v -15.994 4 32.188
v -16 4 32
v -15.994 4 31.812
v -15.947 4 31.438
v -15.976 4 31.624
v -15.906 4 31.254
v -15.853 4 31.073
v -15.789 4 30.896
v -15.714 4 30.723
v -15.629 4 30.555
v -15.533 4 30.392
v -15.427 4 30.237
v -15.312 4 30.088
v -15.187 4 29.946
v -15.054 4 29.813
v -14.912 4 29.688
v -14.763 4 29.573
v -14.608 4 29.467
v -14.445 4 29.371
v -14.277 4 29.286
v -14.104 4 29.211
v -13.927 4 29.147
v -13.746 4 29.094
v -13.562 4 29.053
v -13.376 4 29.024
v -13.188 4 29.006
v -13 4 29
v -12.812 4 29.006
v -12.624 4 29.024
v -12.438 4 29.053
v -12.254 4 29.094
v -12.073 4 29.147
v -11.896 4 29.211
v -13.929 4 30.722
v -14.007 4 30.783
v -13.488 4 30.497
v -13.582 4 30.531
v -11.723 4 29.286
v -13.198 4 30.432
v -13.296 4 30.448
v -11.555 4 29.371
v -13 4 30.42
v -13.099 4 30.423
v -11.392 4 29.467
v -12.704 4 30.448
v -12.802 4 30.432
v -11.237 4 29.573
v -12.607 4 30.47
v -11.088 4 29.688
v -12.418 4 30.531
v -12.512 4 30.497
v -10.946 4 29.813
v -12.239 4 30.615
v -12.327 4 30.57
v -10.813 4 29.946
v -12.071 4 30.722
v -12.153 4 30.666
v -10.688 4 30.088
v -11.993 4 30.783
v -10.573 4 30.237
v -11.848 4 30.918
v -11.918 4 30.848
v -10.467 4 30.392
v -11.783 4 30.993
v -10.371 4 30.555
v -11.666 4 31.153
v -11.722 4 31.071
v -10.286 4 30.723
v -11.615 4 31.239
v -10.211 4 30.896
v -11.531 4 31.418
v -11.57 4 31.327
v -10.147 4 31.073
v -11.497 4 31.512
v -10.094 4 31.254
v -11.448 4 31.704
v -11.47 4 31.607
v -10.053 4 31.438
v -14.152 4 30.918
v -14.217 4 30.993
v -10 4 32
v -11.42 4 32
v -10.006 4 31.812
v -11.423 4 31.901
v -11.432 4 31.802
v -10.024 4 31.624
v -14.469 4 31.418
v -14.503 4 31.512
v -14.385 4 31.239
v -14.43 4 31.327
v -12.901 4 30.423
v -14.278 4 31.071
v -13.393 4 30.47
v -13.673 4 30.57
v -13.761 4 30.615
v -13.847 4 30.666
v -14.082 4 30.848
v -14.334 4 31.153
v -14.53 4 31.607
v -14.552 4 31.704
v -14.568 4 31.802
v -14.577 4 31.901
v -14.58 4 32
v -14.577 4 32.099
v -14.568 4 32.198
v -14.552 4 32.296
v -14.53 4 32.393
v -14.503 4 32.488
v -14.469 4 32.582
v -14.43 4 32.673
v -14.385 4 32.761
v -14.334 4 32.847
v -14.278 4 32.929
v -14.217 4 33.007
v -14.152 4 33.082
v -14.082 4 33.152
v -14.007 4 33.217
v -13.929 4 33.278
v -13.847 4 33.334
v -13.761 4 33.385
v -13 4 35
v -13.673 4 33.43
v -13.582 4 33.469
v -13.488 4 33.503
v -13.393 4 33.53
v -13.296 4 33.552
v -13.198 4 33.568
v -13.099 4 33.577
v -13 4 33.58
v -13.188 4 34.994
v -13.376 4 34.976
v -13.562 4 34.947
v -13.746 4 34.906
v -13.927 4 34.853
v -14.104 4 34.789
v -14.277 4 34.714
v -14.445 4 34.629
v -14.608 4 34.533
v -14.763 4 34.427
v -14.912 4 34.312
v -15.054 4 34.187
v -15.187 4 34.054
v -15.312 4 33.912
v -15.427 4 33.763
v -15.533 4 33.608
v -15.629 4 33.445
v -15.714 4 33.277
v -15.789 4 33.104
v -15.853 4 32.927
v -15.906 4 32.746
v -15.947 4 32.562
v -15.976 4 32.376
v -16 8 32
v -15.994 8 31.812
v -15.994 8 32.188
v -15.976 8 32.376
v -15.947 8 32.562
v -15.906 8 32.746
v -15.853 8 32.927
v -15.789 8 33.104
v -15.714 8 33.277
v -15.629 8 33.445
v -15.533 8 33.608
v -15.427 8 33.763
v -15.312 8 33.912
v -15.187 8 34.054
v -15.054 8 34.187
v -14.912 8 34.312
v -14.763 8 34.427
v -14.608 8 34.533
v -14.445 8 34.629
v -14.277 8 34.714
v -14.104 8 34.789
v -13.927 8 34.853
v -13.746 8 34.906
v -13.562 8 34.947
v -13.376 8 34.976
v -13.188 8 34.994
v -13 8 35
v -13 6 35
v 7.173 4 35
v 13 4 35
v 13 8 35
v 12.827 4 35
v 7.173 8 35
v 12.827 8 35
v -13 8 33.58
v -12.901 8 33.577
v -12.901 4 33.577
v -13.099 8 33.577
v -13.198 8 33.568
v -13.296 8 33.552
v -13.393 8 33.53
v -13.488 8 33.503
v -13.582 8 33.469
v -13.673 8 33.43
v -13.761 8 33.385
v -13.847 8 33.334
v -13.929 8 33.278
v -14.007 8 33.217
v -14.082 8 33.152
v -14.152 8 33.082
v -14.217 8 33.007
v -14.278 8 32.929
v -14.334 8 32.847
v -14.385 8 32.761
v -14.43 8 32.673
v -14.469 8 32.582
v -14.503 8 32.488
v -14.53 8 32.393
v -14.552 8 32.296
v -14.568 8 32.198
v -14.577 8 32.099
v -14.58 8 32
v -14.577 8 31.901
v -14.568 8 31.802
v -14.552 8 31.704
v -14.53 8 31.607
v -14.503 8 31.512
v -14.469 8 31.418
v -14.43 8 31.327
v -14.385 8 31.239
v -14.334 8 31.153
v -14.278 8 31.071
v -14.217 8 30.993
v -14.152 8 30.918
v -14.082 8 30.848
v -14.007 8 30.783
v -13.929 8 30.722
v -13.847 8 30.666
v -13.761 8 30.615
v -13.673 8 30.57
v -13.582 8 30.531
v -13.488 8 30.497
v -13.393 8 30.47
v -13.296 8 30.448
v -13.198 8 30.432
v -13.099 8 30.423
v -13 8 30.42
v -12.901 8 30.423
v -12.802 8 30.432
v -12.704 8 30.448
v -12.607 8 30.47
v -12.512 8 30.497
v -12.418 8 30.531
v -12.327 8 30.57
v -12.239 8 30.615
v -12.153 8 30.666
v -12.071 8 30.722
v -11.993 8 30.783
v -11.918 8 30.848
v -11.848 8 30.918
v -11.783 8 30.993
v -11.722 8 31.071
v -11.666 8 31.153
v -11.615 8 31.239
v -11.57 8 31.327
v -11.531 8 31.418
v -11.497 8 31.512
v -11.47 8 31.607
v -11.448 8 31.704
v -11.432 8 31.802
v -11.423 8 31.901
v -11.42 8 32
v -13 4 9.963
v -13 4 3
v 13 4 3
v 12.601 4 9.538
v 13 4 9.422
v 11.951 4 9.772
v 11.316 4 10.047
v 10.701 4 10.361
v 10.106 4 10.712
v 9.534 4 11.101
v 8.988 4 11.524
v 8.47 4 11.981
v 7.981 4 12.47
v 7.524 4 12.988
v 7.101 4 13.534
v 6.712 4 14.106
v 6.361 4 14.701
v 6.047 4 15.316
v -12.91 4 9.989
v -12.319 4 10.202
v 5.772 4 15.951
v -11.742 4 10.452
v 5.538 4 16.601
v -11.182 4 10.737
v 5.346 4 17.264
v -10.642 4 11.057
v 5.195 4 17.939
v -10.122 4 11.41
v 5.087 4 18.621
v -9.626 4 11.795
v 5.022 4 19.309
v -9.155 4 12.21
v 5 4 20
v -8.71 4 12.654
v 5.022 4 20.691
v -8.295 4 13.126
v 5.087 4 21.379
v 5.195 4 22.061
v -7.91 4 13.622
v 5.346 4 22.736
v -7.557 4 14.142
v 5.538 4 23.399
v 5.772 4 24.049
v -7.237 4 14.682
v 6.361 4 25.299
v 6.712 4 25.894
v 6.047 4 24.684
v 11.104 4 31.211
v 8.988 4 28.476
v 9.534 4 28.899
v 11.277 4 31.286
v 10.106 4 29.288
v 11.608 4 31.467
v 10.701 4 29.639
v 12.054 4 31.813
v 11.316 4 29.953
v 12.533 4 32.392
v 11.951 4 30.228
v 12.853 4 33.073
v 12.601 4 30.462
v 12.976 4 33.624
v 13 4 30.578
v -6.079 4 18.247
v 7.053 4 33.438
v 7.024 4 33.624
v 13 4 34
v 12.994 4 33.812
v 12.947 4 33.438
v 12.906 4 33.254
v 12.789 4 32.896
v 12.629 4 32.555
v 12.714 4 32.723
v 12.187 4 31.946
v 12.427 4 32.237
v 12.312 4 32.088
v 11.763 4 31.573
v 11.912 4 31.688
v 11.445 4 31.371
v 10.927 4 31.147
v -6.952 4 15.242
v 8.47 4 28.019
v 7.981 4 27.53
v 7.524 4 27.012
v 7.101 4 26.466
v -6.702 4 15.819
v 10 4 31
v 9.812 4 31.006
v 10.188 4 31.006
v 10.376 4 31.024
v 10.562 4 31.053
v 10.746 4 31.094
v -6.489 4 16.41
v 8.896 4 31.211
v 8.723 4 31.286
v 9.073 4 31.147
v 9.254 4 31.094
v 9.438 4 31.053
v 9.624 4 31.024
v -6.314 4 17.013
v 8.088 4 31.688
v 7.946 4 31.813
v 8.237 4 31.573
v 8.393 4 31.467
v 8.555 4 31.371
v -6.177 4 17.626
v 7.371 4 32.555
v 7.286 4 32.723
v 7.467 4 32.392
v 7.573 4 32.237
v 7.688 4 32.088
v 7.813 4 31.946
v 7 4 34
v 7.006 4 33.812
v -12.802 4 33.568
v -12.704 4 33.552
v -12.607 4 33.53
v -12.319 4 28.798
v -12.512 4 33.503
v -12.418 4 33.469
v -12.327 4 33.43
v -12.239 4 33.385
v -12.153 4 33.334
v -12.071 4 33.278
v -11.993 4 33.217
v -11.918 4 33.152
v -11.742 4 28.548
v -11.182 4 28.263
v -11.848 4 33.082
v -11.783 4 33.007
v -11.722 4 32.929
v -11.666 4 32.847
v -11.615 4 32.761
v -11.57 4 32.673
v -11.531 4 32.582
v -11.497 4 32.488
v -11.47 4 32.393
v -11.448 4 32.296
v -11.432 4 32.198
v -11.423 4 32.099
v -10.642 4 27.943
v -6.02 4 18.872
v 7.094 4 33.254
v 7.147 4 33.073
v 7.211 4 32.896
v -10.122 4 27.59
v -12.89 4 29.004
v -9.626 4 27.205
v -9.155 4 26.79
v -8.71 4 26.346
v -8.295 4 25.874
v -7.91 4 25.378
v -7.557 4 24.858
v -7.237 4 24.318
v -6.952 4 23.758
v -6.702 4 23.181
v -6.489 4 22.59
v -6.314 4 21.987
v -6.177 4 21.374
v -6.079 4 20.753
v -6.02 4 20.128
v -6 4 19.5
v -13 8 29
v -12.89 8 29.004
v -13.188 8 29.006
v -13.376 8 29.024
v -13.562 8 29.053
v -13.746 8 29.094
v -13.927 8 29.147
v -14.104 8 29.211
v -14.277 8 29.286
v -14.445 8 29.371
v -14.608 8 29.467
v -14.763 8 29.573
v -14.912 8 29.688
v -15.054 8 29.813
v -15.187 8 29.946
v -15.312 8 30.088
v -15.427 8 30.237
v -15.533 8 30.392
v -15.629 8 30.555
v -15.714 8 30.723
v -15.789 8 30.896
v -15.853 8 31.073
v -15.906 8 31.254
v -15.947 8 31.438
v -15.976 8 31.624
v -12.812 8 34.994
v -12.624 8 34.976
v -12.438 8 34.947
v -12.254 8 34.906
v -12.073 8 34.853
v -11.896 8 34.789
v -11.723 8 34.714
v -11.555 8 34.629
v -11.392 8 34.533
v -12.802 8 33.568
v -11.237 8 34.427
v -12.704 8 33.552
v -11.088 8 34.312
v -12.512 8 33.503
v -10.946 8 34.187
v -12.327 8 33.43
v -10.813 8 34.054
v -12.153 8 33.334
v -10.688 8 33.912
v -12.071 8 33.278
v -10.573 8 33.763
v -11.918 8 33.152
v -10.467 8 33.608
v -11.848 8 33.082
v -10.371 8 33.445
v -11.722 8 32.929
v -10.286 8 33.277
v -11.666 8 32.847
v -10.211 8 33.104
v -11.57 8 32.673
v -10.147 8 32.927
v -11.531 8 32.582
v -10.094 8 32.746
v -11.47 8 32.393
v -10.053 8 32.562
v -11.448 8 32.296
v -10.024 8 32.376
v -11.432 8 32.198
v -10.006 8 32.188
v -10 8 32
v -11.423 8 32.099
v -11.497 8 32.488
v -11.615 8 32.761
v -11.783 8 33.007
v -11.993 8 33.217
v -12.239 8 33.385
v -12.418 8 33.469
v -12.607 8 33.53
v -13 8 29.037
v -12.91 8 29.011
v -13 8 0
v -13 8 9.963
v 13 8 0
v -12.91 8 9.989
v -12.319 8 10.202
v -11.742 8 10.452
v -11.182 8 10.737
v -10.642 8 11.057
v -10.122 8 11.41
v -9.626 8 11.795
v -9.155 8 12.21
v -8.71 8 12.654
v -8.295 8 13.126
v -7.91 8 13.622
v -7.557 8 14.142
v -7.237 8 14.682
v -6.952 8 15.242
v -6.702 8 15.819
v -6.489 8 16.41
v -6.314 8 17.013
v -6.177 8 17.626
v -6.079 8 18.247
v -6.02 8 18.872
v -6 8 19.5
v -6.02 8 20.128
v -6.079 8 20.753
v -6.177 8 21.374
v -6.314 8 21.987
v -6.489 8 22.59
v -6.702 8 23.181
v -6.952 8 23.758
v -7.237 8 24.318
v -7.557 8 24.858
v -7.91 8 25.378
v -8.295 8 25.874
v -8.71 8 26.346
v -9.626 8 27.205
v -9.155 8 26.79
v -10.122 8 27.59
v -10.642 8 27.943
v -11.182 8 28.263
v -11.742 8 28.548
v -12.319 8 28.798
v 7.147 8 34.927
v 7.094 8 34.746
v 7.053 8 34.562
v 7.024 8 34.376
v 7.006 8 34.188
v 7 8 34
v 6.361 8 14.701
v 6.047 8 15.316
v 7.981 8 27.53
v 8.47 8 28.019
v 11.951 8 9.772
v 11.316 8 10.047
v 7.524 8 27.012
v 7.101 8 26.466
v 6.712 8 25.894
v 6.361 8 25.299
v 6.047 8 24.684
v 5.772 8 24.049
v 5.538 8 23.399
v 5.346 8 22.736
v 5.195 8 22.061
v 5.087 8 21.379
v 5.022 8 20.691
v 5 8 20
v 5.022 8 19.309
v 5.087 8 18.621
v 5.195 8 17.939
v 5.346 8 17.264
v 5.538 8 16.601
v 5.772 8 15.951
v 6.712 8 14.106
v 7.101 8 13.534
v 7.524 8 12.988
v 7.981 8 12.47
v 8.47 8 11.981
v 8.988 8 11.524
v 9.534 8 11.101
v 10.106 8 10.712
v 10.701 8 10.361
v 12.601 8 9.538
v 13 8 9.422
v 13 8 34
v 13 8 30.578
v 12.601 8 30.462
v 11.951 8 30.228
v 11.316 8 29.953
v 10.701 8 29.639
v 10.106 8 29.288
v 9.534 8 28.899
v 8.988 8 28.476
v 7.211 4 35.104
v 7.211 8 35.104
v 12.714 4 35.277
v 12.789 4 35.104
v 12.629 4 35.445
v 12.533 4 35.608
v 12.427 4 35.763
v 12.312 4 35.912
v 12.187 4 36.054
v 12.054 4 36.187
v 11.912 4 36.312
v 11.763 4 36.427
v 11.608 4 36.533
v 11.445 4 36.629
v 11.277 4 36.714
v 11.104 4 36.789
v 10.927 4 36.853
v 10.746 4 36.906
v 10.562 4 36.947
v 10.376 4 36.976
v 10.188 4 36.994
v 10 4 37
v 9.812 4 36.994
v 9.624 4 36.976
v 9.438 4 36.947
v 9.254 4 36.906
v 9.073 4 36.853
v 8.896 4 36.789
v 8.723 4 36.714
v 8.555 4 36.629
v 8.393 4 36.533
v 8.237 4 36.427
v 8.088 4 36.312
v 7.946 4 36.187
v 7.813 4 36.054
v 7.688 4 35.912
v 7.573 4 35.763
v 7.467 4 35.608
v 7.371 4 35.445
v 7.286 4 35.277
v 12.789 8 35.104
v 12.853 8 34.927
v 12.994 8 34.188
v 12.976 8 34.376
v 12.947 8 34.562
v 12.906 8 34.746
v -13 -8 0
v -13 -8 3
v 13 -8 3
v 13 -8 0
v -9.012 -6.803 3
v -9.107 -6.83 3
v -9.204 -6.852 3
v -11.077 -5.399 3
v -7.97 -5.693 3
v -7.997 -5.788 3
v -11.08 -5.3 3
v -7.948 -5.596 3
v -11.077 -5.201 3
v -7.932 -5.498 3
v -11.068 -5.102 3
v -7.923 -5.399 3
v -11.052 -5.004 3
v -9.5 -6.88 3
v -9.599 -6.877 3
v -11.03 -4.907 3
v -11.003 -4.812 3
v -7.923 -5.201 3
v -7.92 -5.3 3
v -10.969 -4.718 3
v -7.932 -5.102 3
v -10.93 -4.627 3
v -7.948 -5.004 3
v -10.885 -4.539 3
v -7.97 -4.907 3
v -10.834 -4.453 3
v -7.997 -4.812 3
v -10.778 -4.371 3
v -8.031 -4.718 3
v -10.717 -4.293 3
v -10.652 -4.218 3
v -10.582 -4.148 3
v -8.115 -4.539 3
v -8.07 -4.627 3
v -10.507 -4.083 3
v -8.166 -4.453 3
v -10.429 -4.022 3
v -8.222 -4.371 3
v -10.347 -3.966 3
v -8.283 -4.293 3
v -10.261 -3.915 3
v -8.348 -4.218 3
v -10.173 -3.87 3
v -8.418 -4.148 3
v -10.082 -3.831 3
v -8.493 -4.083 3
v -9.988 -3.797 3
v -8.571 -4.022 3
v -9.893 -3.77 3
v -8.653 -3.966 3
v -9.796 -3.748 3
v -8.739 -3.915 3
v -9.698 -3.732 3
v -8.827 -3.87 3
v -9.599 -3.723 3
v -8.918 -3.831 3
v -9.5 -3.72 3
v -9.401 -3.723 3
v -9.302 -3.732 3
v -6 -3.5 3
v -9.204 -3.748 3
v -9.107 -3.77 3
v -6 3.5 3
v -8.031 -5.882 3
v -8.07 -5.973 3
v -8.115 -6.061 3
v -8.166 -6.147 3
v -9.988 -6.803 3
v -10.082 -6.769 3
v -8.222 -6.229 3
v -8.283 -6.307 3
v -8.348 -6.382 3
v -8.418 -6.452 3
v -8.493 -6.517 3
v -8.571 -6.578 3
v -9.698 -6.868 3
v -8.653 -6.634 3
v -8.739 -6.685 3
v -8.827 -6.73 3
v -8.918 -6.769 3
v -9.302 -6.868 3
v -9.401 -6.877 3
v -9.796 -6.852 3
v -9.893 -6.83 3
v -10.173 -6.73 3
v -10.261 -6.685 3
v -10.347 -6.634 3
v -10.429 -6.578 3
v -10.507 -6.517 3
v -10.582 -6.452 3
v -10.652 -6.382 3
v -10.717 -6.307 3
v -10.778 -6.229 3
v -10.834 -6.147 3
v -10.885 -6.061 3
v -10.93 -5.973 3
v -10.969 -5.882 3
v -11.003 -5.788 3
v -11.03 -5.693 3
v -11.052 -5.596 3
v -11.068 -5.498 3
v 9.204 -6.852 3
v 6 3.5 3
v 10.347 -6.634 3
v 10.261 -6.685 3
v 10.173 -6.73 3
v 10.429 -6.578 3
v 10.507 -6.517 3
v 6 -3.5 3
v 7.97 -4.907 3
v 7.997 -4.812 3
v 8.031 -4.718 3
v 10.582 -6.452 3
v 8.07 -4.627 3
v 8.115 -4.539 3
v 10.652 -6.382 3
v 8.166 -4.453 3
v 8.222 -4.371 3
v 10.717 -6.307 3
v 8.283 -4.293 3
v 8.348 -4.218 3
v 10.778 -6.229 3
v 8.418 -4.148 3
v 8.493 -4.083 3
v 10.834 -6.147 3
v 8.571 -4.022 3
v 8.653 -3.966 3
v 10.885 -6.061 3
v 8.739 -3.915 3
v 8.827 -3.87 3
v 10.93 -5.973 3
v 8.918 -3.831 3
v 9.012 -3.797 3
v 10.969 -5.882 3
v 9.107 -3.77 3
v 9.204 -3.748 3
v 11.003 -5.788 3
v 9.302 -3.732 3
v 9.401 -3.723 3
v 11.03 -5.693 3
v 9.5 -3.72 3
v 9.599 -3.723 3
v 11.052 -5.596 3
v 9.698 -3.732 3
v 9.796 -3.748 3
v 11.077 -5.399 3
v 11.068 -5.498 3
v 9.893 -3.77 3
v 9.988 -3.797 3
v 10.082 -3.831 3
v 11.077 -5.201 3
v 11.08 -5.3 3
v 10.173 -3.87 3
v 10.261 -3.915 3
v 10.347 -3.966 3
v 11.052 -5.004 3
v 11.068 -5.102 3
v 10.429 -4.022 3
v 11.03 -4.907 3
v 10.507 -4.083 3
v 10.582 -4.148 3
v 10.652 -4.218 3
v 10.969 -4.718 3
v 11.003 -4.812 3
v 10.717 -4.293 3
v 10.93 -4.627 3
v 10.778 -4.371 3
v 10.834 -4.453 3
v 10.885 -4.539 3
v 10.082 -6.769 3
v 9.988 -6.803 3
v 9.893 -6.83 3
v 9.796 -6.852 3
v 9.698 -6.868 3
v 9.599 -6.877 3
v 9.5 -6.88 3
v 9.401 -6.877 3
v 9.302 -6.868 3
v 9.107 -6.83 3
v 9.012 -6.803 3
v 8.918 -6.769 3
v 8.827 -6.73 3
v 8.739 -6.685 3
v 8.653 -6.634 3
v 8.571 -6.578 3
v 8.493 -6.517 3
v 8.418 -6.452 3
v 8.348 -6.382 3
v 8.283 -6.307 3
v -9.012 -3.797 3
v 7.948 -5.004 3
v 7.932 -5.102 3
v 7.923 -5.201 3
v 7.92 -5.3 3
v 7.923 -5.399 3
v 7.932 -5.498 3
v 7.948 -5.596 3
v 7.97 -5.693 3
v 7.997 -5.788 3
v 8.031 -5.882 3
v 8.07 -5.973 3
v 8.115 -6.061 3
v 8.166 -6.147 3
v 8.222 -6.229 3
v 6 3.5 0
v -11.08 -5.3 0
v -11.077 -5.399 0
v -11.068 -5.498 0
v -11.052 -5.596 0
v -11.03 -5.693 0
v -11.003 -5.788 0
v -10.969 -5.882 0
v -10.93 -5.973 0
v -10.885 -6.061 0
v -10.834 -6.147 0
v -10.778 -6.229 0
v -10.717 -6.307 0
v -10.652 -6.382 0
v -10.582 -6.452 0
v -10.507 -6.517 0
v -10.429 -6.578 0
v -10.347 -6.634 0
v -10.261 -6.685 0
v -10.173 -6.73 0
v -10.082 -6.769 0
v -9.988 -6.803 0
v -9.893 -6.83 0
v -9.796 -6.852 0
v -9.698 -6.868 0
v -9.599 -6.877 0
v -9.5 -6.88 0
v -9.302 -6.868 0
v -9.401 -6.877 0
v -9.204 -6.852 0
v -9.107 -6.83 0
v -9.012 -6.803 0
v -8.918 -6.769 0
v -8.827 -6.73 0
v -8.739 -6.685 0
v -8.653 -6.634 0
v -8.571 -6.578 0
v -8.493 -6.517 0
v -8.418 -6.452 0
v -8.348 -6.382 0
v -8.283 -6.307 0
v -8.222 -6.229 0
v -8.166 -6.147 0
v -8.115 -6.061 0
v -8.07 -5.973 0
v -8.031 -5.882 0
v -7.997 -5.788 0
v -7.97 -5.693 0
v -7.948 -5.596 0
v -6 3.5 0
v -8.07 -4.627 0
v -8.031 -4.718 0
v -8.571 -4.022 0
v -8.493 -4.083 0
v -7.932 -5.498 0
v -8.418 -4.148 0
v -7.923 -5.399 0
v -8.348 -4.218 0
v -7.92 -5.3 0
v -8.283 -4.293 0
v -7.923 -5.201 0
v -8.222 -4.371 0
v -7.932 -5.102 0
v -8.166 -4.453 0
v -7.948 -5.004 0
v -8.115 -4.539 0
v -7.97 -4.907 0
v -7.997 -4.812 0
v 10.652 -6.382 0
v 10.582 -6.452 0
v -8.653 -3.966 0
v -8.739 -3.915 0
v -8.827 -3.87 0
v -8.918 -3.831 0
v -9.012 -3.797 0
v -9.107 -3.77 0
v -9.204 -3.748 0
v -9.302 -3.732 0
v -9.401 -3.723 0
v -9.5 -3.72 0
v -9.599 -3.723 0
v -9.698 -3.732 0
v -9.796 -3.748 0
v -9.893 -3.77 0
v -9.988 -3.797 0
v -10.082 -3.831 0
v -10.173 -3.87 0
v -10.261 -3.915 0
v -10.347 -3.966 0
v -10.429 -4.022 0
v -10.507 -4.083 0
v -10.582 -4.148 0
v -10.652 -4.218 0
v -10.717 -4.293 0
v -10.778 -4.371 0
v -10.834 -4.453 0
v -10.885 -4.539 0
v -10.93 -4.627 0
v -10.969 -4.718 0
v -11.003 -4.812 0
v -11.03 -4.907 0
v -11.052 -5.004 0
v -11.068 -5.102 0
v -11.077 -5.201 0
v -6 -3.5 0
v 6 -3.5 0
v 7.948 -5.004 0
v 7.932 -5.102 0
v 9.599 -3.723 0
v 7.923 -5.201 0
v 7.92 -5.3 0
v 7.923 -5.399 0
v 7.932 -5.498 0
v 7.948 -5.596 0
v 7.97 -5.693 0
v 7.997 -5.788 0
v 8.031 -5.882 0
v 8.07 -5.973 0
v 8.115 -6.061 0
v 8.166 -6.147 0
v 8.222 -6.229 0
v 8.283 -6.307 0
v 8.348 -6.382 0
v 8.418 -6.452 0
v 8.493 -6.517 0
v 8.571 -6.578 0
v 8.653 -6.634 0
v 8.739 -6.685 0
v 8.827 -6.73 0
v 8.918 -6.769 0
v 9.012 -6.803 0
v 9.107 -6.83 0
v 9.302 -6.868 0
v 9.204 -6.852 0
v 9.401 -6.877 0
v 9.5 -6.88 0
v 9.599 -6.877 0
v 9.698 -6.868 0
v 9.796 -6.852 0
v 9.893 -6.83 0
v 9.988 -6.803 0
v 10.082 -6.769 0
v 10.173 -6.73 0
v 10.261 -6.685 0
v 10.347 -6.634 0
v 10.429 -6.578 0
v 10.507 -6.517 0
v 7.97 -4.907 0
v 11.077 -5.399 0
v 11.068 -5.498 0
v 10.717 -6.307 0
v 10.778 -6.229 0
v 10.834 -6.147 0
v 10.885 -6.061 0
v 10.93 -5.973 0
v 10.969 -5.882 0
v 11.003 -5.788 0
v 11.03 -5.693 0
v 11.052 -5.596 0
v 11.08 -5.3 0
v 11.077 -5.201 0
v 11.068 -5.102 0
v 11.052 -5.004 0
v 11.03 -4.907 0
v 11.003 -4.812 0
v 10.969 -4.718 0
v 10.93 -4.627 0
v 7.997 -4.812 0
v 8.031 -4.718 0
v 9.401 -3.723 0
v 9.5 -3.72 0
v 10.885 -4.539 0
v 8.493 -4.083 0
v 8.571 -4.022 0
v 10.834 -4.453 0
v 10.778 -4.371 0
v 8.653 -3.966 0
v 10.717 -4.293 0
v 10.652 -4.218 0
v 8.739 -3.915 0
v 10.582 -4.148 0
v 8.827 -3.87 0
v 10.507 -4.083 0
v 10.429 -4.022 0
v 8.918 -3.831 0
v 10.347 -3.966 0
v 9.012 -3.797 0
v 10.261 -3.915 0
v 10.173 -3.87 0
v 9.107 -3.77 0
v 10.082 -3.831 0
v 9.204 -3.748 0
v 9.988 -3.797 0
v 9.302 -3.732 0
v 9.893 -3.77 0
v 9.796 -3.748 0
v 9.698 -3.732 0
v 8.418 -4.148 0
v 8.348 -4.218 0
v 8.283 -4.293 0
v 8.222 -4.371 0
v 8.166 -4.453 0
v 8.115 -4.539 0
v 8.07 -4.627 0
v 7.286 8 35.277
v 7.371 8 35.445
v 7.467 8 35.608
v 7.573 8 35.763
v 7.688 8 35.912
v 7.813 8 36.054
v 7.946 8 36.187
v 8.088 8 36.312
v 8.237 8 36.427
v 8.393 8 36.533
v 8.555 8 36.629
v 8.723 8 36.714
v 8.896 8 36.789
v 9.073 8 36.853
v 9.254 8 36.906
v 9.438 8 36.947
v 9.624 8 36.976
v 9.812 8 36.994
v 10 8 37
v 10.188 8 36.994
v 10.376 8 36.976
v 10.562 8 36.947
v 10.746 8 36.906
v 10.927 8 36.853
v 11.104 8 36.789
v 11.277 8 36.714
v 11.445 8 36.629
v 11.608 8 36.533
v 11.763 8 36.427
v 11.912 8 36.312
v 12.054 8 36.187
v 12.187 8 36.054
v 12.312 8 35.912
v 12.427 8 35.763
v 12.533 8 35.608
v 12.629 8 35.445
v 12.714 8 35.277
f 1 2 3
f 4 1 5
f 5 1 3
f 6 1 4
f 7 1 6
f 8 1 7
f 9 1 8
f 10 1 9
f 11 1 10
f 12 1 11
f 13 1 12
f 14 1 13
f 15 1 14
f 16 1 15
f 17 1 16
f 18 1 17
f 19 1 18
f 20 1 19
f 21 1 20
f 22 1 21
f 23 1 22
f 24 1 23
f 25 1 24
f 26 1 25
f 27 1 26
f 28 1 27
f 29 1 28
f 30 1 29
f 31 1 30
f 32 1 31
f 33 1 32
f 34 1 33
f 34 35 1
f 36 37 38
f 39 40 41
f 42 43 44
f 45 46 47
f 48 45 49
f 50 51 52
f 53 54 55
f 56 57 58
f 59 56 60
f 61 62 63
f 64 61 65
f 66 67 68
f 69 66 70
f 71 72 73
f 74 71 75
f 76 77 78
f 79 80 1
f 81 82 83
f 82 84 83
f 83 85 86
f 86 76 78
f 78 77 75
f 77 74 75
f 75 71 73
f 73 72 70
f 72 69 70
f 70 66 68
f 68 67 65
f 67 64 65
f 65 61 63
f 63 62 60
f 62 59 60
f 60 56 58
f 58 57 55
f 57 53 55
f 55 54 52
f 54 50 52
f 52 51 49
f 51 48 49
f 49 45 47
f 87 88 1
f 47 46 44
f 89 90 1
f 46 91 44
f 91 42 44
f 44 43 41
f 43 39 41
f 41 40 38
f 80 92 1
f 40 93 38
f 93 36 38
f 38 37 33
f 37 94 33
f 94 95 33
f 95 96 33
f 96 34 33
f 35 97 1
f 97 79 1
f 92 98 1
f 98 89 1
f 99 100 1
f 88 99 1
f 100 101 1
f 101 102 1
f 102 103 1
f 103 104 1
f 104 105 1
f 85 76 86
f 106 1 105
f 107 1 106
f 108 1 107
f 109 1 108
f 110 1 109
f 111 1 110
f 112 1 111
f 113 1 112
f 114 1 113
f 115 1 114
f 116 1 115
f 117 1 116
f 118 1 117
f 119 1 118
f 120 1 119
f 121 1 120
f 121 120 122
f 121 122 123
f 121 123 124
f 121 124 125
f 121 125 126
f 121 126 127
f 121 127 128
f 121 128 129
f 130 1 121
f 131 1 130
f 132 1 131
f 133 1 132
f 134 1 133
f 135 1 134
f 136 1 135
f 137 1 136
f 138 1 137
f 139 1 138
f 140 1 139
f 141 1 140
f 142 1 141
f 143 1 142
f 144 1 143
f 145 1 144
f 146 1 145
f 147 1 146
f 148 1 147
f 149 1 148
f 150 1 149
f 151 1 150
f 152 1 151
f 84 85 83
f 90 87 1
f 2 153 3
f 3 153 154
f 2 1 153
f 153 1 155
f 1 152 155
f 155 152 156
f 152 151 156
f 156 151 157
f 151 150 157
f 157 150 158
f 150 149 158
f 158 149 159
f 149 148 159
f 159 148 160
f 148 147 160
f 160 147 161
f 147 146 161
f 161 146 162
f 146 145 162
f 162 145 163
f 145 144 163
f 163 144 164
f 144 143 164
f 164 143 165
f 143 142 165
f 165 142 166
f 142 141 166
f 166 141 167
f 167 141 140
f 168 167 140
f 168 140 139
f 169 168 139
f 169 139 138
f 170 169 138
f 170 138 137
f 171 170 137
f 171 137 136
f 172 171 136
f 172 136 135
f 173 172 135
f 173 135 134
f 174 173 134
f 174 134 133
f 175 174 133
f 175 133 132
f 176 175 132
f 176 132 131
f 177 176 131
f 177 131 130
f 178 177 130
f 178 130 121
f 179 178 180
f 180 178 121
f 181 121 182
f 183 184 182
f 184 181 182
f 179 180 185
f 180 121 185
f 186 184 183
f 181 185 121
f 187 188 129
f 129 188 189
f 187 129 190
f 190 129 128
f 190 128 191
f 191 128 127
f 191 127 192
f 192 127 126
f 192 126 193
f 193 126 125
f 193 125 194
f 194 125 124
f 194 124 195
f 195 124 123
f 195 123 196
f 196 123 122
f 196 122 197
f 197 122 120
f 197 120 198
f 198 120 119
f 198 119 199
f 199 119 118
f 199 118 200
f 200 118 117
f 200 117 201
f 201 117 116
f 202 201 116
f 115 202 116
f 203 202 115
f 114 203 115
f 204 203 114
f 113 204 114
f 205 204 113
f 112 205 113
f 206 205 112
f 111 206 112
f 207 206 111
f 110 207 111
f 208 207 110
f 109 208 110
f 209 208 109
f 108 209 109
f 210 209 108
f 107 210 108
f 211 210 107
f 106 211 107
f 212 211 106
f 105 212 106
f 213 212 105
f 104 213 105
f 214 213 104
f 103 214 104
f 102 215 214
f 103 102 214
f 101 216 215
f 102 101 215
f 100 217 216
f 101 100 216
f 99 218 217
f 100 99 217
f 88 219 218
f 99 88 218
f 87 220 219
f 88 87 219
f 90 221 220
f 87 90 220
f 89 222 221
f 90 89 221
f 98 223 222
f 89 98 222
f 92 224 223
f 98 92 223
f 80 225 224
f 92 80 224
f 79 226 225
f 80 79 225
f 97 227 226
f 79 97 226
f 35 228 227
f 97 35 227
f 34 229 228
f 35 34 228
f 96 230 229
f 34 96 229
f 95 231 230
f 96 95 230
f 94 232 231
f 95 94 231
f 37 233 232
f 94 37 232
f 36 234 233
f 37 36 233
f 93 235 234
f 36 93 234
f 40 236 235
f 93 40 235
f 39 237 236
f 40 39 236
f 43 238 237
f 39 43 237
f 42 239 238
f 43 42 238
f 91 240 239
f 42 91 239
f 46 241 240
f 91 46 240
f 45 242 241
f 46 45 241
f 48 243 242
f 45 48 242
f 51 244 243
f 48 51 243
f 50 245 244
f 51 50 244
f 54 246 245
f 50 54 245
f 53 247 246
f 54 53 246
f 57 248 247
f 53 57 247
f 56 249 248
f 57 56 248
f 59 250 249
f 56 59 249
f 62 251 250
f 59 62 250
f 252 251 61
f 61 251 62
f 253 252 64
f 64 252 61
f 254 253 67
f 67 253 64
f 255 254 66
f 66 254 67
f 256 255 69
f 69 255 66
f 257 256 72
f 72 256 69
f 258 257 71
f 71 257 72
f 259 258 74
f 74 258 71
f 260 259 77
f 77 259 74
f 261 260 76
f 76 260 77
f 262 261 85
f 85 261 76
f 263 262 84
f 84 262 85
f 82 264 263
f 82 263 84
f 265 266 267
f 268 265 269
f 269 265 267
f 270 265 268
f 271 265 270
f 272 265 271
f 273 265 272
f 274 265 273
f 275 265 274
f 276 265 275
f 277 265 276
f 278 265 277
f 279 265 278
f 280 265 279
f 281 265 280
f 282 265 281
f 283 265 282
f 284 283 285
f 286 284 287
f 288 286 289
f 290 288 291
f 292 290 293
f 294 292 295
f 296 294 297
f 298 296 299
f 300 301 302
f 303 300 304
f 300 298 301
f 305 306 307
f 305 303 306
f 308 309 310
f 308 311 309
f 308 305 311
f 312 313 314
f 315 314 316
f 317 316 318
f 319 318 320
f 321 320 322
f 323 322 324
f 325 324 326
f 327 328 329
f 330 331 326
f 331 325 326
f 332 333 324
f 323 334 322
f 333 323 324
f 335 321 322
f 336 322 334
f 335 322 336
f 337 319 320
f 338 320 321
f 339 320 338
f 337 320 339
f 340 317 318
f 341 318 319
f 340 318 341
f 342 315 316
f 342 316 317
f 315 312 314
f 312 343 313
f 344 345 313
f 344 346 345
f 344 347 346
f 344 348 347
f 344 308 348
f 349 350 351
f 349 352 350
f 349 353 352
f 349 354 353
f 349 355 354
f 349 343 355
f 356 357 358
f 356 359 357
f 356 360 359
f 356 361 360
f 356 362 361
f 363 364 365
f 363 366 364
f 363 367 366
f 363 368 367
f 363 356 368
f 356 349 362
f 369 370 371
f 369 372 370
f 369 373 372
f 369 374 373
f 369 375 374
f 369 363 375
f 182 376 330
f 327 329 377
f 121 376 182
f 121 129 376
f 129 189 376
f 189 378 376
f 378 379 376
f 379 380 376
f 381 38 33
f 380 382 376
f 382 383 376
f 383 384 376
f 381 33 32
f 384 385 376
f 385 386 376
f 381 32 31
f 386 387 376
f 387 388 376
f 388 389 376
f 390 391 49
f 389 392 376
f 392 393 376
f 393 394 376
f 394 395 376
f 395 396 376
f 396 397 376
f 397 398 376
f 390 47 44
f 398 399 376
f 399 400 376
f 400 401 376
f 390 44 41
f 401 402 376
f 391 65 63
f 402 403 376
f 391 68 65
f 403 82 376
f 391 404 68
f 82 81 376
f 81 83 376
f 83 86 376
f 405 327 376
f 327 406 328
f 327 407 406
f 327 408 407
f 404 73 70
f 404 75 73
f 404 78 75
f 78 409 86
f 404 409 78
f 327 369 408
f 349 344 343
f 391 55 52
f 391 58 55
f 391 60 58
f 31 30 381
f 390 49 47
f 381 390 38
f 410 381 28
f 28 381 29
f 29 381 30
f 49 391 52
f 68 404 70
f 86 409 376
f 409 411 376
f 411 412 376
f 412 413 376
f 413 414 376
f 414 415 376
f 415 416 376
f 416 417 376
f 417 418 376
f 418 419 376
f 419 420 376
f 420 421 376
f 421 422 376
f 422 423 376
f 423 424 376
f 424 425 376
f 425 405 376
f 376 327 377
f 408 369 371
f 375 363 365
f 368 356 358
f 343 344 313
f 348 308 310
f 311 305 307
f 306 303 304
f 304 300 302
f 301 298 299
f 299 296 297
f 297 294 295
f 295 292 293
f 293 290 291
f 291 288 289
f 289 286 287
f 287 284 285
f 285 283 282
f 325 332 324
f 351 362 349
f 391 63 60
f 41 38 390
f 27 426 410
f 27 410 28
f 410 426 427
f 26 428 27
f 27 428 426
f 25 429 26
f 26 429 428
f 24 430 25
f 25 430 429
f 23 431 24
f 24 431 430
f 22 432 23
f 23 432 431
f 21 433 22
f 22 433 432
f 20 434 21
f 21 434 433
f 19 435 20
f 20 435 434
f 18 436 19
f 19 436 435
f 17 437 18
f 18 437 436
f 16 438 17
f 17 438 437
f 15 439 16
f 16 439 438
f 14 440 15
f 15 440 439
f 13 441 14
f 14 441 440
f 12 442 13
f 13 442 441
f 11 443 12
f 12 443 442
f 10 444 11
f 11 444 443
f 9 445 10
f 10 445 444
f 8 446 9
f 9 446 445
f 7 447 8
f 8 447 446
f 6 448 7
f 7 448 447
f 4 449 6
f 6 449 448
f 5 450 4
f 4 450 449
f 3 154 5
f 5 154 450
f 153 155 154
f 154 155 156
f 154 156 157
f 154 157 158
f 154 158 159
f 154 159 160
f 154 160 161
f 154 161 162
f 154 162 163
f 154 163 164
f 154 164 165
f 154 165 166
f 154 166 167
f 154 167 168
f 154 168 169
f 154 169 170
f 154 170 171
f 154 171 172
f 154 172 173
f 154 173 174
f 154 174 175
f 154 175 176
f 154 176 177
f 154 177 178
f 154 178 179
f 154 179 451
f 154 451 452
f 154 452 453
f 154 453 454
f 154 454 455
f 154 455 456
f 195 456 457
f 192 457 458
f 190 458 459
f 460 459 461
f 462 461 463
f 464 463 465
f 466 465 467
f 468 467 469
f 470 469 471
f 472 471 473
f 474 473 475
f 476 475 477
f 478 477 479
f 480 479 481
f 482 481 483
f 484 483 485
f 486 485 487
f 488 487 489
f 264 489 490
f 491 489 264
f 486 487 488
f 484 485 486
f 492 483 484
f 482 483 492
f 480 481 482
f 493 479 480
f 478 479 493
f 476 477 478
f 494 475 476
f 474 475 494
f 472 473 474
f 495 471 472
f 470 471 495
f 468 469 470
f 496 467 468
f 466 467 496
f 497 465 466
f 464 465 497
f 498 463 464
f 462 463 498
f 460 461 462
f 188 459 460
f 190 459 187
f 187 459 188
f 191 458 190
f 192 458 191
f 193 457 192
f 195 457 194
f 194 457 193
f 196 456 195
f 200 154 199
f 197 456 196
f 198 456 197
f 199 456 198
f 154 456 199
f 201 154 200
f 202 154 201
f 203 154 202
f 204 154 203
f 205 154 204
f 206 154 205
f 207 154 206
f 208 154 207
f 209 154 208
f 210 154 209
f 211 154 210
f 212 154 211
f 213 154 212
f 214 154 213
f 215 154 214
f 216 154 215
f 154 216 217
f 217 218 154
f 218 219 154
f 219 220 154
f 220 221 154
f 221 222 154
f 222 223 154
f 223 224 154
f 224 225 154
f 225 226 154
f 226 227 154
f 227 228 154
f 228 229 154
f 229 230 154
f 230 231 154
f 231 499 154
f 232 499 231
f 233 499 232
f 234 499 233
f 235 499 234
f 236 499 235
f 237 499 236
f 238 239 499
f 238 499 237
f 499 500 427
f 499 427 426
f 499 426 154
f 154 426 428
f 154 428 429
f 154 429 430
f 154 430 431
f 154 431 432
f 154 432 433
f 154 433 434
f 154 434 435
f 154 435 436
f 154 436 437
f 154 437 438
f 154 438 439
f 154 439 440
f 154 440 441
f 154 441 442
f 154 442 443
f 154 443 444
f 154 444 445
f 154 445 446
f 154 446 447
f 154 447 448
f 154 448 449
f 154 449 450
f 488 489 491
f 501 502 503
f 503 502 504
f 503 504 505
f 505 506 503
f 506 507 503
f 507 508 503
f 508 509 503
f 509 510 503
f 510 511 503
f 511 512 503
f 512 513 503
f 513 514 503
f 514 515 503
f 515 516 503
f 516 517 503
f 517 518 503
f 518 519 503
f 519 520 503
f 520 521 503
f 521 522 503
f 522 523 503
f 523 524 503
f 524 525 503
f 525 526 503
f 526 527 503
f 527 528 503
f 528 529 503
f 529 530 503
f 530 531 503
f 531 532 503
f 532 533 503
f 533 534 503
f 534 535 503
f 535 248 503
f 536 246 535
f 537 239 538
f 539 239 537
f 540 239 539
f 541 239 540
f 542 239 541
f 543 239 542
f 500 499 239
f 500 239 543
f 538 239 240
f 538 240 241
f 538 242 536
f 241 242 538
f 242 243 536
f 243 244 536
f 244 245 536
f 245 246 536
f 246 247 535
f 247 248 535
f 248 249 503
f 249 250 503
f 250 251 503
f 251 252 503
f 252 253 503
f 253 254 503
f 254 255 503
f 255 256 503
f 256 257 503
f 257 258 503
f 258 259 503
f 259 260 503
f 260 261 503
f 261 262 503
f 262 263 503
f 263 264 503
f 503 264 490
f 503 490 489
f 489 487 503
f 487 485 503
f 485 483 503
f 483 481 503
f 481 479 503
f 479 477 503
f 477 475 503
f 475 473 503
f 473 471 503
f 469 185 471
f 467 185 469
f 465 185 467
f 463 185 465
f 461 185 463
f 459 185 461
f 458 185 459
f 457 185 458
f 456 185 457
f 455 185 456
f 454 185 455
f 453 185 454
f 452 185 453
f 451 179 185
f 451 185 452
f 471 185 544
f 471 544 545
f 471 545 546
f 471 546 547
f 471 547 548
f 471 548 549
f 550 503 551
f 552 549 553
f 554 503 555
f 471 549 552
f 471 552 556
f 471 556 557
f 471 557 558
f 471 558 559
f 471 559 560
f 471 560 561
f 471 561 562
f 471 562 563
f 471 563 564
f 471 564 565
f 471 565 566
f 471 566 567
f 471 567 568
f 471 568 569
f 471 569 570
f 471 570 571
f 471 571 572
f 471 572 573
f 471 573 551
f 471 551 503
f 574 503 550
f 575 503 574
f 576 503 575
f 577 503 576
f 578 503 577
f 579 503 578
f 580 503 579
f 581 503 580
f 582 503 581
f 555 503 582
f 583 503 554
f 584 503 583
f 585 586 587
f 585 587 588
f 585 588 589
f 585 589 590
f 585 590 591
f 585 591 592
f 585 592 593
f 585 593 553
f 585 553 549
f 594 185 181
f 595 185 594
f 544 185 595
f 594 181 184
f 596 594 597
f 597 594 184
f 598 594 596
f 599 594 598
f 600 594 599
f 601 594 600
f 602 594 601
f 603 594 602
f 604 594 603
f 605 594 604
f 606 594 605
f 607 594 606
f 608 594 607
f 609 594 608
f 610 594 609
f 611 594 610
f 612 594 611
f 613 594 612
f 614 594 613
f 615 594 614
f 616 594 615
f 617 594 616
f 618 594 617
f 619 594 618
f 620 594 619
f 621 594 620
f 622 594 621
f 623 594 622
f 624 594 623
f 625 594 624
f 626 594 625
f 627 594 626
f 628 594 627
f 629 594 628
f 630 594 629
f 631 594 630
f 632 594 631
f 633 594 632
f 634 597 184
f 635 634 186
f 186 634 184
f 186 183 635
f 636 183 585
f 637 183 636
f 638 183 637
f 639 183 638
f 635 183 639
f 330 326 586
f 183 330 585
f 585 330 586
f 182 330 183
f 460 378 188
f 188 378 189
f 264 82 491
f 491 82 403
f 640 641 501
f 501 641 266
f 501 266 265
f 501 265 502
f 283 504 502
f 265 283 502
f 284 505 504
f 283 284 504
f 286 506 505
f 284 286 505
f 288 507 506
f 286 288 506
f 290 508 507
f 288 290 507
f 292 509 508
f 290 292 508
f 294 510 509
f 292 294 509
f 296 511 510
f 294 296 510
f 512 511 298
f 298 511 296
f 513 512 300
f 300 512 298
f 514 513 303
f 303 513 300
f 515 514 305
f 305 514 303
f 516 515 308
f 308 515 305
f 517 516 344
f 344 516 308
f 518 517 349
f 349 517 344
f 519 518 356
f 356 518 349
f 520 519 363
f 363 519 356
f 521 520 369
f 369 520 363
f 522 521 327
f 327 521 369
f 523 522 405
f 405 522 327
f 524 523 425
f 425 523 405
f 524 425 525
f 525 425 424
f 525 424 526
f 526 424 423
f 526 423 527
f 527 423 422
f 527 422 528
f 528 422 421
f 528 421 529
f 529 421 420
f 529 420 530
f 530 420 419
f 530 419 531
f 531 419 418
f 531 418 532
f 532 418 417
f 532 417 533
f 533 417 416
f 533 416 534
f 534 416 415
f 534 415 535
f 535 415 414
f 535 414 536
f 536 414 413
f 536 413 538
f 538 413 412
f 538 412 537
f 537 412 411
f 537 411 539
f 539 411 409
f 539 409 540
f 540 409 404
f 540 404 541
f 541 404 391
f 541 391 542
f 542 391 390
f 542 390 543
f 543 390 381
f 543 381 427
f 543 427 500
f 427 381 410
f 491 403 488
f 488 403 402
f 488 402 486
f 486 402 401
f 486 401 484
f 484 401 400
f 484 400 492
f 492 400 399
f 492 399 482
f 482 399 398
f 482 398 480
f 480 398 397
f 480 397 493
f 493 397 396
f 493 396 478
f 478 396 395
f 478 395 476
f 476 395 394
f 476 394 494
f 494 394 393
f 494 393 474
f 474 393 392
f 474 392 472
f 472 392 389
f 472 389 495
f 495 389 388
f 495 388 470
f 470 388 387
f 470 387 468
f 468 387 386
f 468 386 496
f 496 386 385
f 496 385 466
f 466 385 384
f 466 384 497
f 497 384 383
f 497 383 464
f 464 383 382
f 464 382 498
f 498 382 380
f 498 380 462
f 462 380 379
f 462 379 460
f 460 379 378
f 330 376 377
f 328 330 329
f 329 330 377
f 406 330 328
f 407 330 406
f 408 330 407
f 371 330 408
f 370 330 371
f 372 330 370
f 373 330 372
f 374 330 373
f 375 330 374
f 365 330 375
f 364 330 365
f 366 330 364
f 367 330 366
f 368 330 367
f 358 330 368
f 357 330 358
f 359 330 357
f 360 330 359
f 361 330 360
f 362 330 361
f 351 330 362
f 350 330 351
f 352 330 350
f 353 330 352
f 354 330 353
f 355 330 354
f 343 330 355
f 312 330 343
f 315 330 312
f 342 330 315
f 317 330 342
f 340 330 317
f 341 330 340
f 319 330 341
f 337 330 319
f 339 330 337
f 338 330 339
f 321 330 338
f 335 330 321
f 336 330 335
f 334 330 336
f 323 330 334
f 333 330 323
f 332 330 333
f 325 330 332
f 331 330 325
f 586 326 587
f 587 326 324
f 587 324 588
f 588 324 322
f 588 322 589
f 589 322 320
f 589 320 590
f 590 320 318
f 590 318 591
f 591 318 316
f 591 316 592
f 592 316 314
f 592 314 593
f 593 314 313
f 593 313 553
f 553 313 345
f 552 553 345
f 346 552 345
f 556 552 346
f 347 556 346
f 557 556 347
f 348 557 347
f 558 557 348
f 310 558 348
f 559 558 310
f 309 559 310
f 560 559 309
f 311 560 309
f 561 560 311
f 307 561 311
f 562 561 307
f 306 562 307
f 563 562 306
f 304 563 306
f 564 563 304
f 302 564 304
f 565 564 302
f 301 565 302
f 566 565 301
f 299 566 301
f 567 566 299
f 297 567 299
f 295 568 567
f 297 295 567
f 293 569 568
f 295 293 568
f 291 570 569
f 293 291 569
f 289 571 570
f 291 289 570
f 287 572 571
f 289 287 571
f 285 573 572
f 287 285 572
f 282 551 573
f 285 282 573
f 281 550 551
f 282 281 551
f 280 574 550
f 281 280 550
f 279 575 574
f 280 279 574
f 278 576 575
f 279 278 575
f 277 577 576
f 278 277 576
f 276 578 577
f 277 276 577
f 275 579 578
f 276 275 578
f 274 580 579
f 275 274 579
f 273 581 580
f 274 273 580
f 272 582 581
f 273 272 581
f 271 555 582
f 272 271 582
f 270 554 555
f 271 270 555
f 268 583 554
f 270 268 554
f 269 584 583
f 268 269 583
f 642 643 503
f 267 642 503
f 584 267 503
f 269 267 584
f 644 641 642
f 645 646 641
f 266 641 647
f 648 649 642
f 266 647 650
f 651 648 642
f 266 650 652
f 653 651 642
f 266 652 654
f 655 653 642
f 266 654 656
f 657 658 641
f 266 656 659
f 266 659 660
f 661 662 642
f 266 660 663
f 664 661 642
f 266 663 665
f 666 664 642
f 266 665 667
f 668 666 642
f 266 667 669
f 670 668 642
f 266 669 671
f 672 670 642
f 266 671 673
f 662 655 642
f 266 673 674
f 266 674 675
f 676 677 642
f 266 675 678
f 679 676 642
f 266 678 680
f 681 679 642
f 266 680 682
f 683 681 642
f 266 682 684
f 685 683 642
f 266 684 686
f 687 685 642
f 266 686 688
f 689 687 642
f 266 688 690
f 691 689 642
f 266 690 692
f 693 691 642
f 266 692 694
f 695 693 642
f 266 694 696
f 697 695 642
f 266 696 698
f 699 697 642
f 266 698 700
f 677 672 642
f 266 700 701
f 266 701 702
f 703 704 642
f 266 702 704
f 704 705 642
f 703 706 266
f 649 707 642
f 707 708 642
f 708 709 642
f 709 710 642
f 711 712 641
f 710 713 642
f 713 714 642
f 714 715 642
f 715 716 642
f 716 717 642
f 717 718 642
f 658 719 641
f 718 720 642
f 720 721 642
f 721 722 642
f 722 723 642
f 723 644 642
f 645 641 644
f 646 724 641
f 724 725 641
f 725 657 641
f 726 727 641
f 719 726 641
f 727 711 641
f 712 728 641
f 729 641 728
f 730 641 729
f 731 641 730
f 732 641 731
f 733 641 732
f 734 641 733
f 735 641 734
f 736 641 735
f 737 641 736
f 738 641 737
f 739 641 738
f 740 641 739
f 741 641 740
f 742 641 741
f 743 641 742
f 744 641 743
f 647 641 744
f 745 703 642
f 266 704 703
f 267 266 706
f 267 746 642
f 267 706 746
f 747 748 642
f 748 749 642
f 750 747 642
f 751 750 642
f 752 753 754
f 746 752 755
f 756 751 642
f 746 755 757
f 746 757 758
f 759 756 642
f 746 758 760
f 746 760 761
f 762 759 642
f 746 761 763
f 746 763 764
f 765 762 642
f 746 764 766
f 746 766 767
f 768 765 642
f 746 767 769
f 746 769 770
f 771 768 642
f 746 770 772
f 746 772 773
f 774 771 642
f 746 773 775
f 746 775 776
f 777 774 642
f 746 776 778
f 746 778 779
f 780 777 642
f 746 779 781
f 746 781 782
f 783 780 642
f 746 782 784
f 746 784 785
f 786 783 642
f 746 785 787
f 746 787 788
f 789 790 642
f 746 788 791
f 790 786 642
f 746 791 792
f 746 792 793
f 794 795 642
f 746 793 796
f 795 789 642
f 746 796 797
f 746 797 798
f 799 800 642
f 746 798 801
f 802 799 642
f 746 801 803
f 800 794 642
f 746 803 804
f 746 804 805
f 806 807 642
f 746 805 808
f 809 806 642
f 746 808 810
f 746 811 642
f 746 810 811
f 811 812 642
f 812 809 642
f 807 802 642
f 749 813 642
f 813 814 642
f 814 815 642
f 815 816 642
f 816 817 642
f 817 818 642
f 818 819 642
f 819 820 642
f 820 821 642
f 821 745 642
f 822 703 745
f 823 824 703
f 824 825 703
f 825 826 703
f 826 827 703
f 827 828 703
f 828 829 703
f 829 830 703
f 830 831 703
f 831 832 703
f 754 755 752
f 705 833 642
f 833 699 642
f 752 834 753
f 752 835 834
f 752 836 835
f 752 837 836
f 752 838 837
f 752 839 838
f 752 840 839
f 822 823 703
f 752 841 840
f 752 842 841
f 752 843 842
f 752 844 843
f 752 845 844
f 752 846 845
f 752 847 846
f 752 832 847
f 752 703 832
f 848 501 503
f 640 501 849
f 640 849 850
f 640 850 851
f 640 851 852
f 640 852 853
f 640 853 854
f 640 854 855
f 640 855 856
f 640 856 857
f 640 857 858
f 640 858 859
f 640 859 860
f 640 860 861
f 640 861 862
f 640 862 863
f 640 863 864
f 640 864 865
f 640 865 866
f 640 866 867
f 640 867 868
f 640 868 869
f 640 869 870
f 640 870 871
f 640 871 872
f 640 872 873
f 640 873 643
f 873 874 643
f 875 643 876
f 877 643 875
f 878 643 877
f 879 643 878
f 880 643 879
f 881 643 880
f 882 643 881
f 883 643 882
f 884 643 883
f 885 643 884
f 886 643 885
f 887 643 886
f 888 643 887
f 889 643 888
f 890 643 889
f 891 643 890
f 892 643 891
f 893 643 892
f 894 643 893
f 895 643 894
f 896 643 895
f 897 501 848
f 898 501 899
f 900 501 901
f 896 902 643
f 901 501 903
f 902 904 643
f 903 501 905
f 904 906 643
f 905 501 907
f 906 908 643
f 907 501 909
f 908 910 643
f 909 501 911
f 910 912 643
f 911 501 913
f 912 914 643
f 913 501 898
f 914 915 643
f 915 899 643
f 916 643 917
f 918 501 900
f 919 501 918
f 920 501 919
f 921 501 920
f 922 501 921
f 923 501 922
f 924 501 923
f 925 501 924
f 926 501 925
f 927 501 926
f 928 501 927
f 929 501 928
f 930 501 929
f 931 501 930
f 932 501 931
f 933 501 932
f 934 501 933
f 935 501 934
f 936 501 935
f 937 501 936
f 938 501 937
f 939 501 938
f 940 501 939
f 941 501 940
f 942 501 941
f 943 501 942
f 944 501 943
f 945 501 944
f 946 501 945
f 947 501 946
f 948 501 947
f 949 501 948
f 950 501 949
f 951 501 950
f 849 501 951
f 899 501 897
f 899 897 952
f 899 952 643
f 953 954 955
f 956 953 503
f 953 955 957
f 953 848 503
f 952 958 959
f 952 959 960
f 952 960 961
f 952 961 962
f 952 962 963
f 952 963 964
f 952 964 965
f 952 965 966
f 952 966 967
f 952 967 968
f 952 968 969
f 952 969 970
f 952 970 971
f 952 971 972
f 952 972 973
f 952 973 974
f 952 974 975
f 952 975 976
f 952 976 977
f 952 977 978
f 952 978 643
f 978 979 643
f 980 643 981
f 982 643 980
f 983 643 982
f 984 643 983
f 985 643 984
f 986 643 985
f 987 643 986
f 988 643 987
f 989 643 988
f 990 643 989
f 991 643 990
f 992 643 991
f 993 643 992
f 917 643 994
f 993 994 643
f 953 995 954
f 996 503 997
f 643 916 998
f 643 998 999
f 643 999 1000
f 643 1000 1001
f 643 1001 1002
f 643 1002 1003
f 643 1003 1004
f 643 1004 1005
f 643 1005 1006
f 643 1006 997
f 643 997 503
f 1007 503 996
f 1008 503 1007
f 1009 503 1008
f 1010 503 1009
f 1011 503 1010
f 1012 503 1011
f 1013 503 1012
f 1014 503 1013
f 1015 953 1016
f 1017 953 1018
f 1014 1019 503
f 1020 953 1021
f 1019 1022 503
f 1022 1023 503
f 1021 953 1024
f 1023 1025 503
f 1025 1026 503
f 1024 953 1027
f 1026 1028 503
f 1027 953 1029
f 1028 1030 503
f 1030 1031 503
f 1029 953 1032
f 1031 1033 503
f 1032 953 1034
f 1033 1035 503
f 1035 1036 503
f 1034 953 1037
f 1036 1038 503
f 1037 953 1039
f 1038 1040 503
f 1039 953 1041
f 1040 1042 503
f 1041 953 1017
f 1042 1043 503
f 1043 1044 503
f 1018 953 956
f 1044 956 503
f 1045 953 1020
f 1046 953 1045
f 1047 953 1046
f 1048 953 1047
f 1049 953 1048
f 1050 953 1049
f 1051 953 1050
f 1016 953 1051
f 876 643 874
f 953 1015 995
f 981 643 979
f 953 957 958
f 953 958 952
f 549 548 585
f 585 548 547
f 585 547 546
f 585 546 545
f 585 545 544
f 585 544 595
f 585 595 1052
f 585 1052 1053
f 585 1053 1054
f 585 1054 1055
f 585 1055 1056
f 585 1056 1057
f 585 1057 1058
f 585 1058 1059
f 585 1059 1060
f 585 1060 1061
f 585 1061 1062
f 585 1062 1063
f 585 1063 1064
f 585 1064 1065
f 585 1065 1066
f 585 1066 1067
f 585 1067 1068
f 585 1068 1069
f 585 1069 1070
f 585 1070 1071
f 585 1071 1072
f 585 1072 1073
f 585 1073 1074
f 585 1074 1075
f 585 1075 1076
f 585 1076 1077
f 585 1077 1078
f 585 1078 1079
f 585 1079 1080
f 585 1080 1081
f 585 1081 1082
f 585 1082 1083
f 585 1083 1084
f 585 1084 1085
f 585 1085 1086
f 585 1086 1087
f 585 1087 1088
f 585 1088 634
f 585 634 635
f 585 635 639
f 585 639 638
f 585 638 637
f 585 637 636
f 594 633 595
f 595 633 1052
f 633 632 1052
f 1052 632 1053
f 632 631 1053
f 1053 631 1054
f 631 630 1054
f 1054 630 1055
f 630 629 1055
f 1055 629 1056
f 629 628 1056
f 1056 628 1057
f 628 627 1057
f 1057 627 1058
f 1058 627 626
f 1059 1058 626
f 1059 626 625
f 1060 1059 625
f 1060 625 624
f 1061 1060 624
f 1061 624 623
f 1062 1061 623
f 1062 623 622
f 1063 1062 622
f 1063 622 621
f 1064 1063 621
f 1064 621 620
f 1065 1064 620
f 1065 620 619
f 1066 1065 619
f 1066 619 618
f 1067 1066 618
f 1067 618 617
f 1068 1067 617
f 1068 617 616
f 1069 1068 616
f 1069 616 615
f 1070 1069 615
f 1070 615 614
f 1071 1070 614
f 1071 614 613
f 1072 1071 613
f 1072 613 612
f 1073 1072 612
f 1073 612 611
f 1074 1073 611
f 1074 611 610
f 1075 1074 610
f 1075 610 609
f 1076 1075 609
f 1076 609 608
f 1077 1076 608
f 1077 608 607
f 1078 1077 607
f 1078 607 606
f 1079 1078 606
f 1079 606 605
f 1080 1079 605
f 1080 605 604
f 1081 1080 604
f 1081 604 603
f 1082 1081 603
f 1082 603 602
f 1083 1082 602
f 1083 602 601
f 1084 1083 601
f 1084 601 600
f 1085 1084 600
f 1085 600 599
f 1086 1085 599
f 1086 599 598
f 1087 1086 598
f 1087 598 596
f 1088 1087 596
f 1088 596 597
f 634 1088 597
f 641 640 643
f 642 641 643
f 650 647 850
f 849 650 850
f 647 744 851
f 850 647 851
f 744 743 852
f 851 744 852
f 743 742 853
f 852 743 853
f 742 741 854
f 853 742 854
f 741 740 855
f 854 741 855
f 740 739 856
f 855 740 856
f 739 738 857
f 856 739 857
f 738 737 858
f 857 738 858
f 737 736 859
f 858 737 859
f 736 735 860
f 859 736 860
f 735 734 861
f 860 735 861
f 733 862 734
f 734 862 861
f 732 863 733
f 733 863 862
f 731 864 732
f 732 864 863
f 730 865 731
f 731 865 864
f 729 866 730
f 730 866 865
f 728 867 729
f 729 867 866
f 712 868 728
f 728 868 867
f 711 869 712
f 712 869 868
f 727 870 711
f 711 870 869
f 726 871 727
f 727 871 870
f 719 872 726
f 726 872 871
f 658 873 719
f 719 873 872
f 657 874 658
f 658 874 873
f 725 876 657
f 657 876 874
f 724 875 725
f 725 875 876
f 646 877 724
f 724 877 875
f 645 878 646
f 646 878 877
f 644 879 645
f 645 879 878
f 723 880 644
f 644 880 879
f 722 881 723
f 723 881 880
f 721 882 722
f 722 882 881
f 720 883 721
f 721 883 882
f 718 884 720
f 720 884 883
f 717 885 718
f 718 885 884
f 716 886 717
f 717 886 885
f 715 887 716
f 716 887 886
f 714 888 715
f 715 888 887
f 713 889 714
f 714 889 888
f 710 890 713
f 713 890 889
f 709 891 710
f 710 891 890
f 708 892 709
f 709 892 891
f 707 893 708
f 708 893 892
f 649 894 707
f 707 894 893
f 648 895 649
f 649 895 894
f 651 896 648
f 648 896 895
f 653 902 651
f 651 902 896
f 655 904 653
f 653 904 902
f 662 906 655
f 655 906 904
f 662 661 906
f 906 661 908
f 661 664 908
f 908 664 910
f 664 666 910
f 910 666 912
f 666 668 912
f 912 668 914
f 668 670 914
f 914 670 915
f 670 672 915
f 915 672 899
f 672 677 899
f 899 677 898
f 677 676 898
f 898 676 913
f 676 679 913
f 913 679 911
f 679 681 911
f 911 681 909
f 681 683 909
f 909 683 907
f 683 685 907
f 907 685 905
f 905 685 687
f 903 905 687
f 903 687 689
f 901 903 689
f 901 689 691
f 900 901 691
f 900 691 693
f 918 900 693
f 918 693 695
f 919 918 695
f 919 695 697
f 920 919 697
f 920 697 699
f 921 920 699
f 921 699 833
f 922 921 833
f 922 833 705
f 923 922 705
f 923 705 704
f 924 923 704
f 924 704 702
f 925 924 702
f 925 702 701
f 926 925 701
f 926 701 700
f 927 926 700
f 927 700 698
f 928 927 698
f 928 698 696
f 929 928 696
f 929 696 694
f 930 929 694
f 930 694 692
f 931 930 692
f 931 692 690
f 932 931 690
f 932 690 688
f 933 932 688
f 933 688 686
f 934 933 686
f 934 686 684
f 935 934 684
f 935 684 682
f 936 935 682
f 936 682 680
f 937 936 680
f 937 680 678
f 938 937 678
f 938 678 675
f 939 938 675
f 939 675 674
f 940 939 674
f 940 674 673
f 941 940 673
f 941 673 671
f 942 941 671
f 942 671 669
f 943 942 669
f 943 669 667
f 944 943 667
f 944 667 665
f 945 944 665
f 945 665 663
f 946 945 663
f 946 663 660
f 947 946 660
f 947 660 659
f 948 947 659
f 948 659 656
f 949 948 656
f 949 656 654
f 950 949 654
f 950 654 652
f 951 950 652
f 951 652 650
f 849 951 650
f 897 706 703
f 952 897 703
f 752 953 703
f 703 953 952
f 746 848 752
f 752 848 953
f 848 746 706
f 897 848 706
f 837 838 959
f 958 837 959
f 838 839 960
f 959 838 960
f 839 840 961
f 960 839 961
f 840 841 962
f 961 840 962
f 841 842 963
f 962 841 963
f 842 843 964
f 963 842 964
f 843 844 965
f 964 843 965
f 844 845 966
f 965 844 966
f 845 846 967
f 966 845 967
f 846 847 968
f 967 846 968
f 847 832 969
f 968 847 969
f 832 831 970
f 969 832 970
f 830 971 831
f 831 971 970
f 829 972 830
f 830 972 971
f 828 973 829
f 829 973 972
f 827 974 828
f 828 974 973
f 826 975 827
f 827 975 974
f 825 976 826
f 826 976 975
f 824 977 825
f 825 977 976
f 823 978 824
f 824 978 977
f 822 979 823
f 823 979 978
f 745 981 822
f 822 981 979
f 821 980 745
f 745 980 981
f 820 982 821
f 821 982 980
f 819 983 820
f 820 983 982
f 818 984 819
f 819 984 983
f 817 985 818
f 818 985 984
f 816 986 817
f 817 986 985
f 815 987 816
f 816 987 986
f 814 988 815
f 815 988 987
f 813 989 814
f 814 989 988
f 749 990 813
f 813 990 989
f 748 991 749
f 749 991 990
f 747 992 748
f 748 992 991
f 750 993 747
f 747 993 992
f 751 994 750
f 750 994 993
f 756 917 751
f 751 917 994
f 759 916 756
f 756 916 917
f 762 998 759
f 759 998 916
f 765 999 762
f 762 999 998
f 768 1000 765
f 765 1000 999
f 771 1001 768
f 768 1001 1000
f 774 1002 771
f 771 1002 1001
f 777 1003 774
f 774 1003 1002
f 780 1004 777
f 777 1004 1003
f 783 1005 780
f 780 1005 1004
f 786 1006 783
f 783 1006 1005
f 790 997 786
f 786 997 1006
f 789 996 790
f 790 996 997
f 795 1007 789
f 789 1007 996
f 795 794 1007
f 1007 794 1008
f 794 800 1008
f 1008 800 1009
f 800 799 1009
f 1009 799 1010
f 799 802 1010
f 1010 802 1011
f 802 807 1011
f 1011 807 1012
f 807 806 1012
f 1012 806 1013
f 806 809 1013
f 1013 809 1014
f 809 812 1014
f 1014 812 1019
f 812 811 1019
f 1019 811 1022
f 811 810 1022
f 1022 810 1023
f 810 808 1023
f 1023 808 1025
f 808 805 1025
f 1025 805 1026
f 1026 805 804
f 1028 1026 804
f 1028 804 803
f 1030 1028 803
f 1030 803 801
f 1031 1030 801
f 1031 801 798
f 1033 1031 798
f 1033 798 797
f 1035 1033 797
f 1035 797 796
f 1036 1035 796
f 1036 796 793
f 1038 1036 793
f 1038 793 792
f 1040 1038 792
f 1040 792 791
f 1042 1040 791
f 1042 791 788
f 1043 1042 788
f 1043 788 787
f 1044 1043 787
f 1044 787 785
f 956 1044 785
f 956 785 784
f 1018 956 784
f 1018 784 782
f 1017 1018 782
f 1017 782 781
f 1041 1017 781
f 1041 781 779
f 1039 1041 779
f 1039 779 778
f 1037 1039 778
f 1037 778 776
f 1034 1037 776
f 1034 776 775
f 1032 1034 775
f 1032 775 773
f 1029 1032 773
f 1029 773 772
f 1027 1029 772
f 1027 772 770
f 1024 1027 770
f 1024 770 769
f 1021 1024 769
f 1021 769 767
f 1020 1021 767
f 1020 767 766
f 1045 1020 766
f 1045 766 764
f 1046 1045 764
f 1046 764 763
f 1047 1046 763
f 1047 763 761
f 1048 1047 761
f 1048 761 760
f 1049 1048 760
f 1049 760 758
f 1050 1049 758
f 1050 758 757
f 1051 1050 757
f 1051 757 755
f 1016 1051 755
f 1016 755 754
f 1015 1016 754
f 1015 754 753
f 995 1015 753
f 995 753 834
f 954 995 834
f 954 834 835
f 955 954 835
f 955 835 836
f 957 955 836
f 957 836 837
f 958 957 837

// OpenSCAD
//---------------------------------------------------------------
//--  Eje Y final de carrera marco.  (c) Antonio Castro Gómez
//---------------------------------------------------------------
//-- Released under the GPL license
//---------------------------------------------------------------

difference()
{
	union()
	{	
		difference()
		{
			union()
			{
				translate([0,0,1.5])cube(size=[26,16,3], center=true);
				translate([0,6,17.5])cube(size=[26,4,35], center=true);
			}
			//agujeros para tornillos M3
			translate([9.5,-5.3,0])cylinder(h=10,r=1.58,$fn=100,center=true);
			translate([-9.5,-5.3,0])cylinder(h=10,r=1.58,$fn=100,center=true);
			//agujero para soldaduras
			translate([0,0,0])cube(size=[12,7,10], center=true);
			//curvas esteticas
			translate([16,0,20])rotate([90,0,0])cylinder(h=30,r=11,$fn=100,center=true);
			translate([-16,0,19.5])rotate([90,0,0])cylinder(h=30,r=10,$fn=100,center=true);
		}

		translate([-13,6,32])rotate([90,0,0])cylinder(h=4,r=3,$fn=100,center=true);
		translate([10,6,34])rotate([90,0,0])cylinder(h=4,r=3,$fn=100,center=true);
	}

	translate([-13,7,32])rotate([90,0,0])cylinder(h=10,r=1.58,$fn=100,center=true);
}
